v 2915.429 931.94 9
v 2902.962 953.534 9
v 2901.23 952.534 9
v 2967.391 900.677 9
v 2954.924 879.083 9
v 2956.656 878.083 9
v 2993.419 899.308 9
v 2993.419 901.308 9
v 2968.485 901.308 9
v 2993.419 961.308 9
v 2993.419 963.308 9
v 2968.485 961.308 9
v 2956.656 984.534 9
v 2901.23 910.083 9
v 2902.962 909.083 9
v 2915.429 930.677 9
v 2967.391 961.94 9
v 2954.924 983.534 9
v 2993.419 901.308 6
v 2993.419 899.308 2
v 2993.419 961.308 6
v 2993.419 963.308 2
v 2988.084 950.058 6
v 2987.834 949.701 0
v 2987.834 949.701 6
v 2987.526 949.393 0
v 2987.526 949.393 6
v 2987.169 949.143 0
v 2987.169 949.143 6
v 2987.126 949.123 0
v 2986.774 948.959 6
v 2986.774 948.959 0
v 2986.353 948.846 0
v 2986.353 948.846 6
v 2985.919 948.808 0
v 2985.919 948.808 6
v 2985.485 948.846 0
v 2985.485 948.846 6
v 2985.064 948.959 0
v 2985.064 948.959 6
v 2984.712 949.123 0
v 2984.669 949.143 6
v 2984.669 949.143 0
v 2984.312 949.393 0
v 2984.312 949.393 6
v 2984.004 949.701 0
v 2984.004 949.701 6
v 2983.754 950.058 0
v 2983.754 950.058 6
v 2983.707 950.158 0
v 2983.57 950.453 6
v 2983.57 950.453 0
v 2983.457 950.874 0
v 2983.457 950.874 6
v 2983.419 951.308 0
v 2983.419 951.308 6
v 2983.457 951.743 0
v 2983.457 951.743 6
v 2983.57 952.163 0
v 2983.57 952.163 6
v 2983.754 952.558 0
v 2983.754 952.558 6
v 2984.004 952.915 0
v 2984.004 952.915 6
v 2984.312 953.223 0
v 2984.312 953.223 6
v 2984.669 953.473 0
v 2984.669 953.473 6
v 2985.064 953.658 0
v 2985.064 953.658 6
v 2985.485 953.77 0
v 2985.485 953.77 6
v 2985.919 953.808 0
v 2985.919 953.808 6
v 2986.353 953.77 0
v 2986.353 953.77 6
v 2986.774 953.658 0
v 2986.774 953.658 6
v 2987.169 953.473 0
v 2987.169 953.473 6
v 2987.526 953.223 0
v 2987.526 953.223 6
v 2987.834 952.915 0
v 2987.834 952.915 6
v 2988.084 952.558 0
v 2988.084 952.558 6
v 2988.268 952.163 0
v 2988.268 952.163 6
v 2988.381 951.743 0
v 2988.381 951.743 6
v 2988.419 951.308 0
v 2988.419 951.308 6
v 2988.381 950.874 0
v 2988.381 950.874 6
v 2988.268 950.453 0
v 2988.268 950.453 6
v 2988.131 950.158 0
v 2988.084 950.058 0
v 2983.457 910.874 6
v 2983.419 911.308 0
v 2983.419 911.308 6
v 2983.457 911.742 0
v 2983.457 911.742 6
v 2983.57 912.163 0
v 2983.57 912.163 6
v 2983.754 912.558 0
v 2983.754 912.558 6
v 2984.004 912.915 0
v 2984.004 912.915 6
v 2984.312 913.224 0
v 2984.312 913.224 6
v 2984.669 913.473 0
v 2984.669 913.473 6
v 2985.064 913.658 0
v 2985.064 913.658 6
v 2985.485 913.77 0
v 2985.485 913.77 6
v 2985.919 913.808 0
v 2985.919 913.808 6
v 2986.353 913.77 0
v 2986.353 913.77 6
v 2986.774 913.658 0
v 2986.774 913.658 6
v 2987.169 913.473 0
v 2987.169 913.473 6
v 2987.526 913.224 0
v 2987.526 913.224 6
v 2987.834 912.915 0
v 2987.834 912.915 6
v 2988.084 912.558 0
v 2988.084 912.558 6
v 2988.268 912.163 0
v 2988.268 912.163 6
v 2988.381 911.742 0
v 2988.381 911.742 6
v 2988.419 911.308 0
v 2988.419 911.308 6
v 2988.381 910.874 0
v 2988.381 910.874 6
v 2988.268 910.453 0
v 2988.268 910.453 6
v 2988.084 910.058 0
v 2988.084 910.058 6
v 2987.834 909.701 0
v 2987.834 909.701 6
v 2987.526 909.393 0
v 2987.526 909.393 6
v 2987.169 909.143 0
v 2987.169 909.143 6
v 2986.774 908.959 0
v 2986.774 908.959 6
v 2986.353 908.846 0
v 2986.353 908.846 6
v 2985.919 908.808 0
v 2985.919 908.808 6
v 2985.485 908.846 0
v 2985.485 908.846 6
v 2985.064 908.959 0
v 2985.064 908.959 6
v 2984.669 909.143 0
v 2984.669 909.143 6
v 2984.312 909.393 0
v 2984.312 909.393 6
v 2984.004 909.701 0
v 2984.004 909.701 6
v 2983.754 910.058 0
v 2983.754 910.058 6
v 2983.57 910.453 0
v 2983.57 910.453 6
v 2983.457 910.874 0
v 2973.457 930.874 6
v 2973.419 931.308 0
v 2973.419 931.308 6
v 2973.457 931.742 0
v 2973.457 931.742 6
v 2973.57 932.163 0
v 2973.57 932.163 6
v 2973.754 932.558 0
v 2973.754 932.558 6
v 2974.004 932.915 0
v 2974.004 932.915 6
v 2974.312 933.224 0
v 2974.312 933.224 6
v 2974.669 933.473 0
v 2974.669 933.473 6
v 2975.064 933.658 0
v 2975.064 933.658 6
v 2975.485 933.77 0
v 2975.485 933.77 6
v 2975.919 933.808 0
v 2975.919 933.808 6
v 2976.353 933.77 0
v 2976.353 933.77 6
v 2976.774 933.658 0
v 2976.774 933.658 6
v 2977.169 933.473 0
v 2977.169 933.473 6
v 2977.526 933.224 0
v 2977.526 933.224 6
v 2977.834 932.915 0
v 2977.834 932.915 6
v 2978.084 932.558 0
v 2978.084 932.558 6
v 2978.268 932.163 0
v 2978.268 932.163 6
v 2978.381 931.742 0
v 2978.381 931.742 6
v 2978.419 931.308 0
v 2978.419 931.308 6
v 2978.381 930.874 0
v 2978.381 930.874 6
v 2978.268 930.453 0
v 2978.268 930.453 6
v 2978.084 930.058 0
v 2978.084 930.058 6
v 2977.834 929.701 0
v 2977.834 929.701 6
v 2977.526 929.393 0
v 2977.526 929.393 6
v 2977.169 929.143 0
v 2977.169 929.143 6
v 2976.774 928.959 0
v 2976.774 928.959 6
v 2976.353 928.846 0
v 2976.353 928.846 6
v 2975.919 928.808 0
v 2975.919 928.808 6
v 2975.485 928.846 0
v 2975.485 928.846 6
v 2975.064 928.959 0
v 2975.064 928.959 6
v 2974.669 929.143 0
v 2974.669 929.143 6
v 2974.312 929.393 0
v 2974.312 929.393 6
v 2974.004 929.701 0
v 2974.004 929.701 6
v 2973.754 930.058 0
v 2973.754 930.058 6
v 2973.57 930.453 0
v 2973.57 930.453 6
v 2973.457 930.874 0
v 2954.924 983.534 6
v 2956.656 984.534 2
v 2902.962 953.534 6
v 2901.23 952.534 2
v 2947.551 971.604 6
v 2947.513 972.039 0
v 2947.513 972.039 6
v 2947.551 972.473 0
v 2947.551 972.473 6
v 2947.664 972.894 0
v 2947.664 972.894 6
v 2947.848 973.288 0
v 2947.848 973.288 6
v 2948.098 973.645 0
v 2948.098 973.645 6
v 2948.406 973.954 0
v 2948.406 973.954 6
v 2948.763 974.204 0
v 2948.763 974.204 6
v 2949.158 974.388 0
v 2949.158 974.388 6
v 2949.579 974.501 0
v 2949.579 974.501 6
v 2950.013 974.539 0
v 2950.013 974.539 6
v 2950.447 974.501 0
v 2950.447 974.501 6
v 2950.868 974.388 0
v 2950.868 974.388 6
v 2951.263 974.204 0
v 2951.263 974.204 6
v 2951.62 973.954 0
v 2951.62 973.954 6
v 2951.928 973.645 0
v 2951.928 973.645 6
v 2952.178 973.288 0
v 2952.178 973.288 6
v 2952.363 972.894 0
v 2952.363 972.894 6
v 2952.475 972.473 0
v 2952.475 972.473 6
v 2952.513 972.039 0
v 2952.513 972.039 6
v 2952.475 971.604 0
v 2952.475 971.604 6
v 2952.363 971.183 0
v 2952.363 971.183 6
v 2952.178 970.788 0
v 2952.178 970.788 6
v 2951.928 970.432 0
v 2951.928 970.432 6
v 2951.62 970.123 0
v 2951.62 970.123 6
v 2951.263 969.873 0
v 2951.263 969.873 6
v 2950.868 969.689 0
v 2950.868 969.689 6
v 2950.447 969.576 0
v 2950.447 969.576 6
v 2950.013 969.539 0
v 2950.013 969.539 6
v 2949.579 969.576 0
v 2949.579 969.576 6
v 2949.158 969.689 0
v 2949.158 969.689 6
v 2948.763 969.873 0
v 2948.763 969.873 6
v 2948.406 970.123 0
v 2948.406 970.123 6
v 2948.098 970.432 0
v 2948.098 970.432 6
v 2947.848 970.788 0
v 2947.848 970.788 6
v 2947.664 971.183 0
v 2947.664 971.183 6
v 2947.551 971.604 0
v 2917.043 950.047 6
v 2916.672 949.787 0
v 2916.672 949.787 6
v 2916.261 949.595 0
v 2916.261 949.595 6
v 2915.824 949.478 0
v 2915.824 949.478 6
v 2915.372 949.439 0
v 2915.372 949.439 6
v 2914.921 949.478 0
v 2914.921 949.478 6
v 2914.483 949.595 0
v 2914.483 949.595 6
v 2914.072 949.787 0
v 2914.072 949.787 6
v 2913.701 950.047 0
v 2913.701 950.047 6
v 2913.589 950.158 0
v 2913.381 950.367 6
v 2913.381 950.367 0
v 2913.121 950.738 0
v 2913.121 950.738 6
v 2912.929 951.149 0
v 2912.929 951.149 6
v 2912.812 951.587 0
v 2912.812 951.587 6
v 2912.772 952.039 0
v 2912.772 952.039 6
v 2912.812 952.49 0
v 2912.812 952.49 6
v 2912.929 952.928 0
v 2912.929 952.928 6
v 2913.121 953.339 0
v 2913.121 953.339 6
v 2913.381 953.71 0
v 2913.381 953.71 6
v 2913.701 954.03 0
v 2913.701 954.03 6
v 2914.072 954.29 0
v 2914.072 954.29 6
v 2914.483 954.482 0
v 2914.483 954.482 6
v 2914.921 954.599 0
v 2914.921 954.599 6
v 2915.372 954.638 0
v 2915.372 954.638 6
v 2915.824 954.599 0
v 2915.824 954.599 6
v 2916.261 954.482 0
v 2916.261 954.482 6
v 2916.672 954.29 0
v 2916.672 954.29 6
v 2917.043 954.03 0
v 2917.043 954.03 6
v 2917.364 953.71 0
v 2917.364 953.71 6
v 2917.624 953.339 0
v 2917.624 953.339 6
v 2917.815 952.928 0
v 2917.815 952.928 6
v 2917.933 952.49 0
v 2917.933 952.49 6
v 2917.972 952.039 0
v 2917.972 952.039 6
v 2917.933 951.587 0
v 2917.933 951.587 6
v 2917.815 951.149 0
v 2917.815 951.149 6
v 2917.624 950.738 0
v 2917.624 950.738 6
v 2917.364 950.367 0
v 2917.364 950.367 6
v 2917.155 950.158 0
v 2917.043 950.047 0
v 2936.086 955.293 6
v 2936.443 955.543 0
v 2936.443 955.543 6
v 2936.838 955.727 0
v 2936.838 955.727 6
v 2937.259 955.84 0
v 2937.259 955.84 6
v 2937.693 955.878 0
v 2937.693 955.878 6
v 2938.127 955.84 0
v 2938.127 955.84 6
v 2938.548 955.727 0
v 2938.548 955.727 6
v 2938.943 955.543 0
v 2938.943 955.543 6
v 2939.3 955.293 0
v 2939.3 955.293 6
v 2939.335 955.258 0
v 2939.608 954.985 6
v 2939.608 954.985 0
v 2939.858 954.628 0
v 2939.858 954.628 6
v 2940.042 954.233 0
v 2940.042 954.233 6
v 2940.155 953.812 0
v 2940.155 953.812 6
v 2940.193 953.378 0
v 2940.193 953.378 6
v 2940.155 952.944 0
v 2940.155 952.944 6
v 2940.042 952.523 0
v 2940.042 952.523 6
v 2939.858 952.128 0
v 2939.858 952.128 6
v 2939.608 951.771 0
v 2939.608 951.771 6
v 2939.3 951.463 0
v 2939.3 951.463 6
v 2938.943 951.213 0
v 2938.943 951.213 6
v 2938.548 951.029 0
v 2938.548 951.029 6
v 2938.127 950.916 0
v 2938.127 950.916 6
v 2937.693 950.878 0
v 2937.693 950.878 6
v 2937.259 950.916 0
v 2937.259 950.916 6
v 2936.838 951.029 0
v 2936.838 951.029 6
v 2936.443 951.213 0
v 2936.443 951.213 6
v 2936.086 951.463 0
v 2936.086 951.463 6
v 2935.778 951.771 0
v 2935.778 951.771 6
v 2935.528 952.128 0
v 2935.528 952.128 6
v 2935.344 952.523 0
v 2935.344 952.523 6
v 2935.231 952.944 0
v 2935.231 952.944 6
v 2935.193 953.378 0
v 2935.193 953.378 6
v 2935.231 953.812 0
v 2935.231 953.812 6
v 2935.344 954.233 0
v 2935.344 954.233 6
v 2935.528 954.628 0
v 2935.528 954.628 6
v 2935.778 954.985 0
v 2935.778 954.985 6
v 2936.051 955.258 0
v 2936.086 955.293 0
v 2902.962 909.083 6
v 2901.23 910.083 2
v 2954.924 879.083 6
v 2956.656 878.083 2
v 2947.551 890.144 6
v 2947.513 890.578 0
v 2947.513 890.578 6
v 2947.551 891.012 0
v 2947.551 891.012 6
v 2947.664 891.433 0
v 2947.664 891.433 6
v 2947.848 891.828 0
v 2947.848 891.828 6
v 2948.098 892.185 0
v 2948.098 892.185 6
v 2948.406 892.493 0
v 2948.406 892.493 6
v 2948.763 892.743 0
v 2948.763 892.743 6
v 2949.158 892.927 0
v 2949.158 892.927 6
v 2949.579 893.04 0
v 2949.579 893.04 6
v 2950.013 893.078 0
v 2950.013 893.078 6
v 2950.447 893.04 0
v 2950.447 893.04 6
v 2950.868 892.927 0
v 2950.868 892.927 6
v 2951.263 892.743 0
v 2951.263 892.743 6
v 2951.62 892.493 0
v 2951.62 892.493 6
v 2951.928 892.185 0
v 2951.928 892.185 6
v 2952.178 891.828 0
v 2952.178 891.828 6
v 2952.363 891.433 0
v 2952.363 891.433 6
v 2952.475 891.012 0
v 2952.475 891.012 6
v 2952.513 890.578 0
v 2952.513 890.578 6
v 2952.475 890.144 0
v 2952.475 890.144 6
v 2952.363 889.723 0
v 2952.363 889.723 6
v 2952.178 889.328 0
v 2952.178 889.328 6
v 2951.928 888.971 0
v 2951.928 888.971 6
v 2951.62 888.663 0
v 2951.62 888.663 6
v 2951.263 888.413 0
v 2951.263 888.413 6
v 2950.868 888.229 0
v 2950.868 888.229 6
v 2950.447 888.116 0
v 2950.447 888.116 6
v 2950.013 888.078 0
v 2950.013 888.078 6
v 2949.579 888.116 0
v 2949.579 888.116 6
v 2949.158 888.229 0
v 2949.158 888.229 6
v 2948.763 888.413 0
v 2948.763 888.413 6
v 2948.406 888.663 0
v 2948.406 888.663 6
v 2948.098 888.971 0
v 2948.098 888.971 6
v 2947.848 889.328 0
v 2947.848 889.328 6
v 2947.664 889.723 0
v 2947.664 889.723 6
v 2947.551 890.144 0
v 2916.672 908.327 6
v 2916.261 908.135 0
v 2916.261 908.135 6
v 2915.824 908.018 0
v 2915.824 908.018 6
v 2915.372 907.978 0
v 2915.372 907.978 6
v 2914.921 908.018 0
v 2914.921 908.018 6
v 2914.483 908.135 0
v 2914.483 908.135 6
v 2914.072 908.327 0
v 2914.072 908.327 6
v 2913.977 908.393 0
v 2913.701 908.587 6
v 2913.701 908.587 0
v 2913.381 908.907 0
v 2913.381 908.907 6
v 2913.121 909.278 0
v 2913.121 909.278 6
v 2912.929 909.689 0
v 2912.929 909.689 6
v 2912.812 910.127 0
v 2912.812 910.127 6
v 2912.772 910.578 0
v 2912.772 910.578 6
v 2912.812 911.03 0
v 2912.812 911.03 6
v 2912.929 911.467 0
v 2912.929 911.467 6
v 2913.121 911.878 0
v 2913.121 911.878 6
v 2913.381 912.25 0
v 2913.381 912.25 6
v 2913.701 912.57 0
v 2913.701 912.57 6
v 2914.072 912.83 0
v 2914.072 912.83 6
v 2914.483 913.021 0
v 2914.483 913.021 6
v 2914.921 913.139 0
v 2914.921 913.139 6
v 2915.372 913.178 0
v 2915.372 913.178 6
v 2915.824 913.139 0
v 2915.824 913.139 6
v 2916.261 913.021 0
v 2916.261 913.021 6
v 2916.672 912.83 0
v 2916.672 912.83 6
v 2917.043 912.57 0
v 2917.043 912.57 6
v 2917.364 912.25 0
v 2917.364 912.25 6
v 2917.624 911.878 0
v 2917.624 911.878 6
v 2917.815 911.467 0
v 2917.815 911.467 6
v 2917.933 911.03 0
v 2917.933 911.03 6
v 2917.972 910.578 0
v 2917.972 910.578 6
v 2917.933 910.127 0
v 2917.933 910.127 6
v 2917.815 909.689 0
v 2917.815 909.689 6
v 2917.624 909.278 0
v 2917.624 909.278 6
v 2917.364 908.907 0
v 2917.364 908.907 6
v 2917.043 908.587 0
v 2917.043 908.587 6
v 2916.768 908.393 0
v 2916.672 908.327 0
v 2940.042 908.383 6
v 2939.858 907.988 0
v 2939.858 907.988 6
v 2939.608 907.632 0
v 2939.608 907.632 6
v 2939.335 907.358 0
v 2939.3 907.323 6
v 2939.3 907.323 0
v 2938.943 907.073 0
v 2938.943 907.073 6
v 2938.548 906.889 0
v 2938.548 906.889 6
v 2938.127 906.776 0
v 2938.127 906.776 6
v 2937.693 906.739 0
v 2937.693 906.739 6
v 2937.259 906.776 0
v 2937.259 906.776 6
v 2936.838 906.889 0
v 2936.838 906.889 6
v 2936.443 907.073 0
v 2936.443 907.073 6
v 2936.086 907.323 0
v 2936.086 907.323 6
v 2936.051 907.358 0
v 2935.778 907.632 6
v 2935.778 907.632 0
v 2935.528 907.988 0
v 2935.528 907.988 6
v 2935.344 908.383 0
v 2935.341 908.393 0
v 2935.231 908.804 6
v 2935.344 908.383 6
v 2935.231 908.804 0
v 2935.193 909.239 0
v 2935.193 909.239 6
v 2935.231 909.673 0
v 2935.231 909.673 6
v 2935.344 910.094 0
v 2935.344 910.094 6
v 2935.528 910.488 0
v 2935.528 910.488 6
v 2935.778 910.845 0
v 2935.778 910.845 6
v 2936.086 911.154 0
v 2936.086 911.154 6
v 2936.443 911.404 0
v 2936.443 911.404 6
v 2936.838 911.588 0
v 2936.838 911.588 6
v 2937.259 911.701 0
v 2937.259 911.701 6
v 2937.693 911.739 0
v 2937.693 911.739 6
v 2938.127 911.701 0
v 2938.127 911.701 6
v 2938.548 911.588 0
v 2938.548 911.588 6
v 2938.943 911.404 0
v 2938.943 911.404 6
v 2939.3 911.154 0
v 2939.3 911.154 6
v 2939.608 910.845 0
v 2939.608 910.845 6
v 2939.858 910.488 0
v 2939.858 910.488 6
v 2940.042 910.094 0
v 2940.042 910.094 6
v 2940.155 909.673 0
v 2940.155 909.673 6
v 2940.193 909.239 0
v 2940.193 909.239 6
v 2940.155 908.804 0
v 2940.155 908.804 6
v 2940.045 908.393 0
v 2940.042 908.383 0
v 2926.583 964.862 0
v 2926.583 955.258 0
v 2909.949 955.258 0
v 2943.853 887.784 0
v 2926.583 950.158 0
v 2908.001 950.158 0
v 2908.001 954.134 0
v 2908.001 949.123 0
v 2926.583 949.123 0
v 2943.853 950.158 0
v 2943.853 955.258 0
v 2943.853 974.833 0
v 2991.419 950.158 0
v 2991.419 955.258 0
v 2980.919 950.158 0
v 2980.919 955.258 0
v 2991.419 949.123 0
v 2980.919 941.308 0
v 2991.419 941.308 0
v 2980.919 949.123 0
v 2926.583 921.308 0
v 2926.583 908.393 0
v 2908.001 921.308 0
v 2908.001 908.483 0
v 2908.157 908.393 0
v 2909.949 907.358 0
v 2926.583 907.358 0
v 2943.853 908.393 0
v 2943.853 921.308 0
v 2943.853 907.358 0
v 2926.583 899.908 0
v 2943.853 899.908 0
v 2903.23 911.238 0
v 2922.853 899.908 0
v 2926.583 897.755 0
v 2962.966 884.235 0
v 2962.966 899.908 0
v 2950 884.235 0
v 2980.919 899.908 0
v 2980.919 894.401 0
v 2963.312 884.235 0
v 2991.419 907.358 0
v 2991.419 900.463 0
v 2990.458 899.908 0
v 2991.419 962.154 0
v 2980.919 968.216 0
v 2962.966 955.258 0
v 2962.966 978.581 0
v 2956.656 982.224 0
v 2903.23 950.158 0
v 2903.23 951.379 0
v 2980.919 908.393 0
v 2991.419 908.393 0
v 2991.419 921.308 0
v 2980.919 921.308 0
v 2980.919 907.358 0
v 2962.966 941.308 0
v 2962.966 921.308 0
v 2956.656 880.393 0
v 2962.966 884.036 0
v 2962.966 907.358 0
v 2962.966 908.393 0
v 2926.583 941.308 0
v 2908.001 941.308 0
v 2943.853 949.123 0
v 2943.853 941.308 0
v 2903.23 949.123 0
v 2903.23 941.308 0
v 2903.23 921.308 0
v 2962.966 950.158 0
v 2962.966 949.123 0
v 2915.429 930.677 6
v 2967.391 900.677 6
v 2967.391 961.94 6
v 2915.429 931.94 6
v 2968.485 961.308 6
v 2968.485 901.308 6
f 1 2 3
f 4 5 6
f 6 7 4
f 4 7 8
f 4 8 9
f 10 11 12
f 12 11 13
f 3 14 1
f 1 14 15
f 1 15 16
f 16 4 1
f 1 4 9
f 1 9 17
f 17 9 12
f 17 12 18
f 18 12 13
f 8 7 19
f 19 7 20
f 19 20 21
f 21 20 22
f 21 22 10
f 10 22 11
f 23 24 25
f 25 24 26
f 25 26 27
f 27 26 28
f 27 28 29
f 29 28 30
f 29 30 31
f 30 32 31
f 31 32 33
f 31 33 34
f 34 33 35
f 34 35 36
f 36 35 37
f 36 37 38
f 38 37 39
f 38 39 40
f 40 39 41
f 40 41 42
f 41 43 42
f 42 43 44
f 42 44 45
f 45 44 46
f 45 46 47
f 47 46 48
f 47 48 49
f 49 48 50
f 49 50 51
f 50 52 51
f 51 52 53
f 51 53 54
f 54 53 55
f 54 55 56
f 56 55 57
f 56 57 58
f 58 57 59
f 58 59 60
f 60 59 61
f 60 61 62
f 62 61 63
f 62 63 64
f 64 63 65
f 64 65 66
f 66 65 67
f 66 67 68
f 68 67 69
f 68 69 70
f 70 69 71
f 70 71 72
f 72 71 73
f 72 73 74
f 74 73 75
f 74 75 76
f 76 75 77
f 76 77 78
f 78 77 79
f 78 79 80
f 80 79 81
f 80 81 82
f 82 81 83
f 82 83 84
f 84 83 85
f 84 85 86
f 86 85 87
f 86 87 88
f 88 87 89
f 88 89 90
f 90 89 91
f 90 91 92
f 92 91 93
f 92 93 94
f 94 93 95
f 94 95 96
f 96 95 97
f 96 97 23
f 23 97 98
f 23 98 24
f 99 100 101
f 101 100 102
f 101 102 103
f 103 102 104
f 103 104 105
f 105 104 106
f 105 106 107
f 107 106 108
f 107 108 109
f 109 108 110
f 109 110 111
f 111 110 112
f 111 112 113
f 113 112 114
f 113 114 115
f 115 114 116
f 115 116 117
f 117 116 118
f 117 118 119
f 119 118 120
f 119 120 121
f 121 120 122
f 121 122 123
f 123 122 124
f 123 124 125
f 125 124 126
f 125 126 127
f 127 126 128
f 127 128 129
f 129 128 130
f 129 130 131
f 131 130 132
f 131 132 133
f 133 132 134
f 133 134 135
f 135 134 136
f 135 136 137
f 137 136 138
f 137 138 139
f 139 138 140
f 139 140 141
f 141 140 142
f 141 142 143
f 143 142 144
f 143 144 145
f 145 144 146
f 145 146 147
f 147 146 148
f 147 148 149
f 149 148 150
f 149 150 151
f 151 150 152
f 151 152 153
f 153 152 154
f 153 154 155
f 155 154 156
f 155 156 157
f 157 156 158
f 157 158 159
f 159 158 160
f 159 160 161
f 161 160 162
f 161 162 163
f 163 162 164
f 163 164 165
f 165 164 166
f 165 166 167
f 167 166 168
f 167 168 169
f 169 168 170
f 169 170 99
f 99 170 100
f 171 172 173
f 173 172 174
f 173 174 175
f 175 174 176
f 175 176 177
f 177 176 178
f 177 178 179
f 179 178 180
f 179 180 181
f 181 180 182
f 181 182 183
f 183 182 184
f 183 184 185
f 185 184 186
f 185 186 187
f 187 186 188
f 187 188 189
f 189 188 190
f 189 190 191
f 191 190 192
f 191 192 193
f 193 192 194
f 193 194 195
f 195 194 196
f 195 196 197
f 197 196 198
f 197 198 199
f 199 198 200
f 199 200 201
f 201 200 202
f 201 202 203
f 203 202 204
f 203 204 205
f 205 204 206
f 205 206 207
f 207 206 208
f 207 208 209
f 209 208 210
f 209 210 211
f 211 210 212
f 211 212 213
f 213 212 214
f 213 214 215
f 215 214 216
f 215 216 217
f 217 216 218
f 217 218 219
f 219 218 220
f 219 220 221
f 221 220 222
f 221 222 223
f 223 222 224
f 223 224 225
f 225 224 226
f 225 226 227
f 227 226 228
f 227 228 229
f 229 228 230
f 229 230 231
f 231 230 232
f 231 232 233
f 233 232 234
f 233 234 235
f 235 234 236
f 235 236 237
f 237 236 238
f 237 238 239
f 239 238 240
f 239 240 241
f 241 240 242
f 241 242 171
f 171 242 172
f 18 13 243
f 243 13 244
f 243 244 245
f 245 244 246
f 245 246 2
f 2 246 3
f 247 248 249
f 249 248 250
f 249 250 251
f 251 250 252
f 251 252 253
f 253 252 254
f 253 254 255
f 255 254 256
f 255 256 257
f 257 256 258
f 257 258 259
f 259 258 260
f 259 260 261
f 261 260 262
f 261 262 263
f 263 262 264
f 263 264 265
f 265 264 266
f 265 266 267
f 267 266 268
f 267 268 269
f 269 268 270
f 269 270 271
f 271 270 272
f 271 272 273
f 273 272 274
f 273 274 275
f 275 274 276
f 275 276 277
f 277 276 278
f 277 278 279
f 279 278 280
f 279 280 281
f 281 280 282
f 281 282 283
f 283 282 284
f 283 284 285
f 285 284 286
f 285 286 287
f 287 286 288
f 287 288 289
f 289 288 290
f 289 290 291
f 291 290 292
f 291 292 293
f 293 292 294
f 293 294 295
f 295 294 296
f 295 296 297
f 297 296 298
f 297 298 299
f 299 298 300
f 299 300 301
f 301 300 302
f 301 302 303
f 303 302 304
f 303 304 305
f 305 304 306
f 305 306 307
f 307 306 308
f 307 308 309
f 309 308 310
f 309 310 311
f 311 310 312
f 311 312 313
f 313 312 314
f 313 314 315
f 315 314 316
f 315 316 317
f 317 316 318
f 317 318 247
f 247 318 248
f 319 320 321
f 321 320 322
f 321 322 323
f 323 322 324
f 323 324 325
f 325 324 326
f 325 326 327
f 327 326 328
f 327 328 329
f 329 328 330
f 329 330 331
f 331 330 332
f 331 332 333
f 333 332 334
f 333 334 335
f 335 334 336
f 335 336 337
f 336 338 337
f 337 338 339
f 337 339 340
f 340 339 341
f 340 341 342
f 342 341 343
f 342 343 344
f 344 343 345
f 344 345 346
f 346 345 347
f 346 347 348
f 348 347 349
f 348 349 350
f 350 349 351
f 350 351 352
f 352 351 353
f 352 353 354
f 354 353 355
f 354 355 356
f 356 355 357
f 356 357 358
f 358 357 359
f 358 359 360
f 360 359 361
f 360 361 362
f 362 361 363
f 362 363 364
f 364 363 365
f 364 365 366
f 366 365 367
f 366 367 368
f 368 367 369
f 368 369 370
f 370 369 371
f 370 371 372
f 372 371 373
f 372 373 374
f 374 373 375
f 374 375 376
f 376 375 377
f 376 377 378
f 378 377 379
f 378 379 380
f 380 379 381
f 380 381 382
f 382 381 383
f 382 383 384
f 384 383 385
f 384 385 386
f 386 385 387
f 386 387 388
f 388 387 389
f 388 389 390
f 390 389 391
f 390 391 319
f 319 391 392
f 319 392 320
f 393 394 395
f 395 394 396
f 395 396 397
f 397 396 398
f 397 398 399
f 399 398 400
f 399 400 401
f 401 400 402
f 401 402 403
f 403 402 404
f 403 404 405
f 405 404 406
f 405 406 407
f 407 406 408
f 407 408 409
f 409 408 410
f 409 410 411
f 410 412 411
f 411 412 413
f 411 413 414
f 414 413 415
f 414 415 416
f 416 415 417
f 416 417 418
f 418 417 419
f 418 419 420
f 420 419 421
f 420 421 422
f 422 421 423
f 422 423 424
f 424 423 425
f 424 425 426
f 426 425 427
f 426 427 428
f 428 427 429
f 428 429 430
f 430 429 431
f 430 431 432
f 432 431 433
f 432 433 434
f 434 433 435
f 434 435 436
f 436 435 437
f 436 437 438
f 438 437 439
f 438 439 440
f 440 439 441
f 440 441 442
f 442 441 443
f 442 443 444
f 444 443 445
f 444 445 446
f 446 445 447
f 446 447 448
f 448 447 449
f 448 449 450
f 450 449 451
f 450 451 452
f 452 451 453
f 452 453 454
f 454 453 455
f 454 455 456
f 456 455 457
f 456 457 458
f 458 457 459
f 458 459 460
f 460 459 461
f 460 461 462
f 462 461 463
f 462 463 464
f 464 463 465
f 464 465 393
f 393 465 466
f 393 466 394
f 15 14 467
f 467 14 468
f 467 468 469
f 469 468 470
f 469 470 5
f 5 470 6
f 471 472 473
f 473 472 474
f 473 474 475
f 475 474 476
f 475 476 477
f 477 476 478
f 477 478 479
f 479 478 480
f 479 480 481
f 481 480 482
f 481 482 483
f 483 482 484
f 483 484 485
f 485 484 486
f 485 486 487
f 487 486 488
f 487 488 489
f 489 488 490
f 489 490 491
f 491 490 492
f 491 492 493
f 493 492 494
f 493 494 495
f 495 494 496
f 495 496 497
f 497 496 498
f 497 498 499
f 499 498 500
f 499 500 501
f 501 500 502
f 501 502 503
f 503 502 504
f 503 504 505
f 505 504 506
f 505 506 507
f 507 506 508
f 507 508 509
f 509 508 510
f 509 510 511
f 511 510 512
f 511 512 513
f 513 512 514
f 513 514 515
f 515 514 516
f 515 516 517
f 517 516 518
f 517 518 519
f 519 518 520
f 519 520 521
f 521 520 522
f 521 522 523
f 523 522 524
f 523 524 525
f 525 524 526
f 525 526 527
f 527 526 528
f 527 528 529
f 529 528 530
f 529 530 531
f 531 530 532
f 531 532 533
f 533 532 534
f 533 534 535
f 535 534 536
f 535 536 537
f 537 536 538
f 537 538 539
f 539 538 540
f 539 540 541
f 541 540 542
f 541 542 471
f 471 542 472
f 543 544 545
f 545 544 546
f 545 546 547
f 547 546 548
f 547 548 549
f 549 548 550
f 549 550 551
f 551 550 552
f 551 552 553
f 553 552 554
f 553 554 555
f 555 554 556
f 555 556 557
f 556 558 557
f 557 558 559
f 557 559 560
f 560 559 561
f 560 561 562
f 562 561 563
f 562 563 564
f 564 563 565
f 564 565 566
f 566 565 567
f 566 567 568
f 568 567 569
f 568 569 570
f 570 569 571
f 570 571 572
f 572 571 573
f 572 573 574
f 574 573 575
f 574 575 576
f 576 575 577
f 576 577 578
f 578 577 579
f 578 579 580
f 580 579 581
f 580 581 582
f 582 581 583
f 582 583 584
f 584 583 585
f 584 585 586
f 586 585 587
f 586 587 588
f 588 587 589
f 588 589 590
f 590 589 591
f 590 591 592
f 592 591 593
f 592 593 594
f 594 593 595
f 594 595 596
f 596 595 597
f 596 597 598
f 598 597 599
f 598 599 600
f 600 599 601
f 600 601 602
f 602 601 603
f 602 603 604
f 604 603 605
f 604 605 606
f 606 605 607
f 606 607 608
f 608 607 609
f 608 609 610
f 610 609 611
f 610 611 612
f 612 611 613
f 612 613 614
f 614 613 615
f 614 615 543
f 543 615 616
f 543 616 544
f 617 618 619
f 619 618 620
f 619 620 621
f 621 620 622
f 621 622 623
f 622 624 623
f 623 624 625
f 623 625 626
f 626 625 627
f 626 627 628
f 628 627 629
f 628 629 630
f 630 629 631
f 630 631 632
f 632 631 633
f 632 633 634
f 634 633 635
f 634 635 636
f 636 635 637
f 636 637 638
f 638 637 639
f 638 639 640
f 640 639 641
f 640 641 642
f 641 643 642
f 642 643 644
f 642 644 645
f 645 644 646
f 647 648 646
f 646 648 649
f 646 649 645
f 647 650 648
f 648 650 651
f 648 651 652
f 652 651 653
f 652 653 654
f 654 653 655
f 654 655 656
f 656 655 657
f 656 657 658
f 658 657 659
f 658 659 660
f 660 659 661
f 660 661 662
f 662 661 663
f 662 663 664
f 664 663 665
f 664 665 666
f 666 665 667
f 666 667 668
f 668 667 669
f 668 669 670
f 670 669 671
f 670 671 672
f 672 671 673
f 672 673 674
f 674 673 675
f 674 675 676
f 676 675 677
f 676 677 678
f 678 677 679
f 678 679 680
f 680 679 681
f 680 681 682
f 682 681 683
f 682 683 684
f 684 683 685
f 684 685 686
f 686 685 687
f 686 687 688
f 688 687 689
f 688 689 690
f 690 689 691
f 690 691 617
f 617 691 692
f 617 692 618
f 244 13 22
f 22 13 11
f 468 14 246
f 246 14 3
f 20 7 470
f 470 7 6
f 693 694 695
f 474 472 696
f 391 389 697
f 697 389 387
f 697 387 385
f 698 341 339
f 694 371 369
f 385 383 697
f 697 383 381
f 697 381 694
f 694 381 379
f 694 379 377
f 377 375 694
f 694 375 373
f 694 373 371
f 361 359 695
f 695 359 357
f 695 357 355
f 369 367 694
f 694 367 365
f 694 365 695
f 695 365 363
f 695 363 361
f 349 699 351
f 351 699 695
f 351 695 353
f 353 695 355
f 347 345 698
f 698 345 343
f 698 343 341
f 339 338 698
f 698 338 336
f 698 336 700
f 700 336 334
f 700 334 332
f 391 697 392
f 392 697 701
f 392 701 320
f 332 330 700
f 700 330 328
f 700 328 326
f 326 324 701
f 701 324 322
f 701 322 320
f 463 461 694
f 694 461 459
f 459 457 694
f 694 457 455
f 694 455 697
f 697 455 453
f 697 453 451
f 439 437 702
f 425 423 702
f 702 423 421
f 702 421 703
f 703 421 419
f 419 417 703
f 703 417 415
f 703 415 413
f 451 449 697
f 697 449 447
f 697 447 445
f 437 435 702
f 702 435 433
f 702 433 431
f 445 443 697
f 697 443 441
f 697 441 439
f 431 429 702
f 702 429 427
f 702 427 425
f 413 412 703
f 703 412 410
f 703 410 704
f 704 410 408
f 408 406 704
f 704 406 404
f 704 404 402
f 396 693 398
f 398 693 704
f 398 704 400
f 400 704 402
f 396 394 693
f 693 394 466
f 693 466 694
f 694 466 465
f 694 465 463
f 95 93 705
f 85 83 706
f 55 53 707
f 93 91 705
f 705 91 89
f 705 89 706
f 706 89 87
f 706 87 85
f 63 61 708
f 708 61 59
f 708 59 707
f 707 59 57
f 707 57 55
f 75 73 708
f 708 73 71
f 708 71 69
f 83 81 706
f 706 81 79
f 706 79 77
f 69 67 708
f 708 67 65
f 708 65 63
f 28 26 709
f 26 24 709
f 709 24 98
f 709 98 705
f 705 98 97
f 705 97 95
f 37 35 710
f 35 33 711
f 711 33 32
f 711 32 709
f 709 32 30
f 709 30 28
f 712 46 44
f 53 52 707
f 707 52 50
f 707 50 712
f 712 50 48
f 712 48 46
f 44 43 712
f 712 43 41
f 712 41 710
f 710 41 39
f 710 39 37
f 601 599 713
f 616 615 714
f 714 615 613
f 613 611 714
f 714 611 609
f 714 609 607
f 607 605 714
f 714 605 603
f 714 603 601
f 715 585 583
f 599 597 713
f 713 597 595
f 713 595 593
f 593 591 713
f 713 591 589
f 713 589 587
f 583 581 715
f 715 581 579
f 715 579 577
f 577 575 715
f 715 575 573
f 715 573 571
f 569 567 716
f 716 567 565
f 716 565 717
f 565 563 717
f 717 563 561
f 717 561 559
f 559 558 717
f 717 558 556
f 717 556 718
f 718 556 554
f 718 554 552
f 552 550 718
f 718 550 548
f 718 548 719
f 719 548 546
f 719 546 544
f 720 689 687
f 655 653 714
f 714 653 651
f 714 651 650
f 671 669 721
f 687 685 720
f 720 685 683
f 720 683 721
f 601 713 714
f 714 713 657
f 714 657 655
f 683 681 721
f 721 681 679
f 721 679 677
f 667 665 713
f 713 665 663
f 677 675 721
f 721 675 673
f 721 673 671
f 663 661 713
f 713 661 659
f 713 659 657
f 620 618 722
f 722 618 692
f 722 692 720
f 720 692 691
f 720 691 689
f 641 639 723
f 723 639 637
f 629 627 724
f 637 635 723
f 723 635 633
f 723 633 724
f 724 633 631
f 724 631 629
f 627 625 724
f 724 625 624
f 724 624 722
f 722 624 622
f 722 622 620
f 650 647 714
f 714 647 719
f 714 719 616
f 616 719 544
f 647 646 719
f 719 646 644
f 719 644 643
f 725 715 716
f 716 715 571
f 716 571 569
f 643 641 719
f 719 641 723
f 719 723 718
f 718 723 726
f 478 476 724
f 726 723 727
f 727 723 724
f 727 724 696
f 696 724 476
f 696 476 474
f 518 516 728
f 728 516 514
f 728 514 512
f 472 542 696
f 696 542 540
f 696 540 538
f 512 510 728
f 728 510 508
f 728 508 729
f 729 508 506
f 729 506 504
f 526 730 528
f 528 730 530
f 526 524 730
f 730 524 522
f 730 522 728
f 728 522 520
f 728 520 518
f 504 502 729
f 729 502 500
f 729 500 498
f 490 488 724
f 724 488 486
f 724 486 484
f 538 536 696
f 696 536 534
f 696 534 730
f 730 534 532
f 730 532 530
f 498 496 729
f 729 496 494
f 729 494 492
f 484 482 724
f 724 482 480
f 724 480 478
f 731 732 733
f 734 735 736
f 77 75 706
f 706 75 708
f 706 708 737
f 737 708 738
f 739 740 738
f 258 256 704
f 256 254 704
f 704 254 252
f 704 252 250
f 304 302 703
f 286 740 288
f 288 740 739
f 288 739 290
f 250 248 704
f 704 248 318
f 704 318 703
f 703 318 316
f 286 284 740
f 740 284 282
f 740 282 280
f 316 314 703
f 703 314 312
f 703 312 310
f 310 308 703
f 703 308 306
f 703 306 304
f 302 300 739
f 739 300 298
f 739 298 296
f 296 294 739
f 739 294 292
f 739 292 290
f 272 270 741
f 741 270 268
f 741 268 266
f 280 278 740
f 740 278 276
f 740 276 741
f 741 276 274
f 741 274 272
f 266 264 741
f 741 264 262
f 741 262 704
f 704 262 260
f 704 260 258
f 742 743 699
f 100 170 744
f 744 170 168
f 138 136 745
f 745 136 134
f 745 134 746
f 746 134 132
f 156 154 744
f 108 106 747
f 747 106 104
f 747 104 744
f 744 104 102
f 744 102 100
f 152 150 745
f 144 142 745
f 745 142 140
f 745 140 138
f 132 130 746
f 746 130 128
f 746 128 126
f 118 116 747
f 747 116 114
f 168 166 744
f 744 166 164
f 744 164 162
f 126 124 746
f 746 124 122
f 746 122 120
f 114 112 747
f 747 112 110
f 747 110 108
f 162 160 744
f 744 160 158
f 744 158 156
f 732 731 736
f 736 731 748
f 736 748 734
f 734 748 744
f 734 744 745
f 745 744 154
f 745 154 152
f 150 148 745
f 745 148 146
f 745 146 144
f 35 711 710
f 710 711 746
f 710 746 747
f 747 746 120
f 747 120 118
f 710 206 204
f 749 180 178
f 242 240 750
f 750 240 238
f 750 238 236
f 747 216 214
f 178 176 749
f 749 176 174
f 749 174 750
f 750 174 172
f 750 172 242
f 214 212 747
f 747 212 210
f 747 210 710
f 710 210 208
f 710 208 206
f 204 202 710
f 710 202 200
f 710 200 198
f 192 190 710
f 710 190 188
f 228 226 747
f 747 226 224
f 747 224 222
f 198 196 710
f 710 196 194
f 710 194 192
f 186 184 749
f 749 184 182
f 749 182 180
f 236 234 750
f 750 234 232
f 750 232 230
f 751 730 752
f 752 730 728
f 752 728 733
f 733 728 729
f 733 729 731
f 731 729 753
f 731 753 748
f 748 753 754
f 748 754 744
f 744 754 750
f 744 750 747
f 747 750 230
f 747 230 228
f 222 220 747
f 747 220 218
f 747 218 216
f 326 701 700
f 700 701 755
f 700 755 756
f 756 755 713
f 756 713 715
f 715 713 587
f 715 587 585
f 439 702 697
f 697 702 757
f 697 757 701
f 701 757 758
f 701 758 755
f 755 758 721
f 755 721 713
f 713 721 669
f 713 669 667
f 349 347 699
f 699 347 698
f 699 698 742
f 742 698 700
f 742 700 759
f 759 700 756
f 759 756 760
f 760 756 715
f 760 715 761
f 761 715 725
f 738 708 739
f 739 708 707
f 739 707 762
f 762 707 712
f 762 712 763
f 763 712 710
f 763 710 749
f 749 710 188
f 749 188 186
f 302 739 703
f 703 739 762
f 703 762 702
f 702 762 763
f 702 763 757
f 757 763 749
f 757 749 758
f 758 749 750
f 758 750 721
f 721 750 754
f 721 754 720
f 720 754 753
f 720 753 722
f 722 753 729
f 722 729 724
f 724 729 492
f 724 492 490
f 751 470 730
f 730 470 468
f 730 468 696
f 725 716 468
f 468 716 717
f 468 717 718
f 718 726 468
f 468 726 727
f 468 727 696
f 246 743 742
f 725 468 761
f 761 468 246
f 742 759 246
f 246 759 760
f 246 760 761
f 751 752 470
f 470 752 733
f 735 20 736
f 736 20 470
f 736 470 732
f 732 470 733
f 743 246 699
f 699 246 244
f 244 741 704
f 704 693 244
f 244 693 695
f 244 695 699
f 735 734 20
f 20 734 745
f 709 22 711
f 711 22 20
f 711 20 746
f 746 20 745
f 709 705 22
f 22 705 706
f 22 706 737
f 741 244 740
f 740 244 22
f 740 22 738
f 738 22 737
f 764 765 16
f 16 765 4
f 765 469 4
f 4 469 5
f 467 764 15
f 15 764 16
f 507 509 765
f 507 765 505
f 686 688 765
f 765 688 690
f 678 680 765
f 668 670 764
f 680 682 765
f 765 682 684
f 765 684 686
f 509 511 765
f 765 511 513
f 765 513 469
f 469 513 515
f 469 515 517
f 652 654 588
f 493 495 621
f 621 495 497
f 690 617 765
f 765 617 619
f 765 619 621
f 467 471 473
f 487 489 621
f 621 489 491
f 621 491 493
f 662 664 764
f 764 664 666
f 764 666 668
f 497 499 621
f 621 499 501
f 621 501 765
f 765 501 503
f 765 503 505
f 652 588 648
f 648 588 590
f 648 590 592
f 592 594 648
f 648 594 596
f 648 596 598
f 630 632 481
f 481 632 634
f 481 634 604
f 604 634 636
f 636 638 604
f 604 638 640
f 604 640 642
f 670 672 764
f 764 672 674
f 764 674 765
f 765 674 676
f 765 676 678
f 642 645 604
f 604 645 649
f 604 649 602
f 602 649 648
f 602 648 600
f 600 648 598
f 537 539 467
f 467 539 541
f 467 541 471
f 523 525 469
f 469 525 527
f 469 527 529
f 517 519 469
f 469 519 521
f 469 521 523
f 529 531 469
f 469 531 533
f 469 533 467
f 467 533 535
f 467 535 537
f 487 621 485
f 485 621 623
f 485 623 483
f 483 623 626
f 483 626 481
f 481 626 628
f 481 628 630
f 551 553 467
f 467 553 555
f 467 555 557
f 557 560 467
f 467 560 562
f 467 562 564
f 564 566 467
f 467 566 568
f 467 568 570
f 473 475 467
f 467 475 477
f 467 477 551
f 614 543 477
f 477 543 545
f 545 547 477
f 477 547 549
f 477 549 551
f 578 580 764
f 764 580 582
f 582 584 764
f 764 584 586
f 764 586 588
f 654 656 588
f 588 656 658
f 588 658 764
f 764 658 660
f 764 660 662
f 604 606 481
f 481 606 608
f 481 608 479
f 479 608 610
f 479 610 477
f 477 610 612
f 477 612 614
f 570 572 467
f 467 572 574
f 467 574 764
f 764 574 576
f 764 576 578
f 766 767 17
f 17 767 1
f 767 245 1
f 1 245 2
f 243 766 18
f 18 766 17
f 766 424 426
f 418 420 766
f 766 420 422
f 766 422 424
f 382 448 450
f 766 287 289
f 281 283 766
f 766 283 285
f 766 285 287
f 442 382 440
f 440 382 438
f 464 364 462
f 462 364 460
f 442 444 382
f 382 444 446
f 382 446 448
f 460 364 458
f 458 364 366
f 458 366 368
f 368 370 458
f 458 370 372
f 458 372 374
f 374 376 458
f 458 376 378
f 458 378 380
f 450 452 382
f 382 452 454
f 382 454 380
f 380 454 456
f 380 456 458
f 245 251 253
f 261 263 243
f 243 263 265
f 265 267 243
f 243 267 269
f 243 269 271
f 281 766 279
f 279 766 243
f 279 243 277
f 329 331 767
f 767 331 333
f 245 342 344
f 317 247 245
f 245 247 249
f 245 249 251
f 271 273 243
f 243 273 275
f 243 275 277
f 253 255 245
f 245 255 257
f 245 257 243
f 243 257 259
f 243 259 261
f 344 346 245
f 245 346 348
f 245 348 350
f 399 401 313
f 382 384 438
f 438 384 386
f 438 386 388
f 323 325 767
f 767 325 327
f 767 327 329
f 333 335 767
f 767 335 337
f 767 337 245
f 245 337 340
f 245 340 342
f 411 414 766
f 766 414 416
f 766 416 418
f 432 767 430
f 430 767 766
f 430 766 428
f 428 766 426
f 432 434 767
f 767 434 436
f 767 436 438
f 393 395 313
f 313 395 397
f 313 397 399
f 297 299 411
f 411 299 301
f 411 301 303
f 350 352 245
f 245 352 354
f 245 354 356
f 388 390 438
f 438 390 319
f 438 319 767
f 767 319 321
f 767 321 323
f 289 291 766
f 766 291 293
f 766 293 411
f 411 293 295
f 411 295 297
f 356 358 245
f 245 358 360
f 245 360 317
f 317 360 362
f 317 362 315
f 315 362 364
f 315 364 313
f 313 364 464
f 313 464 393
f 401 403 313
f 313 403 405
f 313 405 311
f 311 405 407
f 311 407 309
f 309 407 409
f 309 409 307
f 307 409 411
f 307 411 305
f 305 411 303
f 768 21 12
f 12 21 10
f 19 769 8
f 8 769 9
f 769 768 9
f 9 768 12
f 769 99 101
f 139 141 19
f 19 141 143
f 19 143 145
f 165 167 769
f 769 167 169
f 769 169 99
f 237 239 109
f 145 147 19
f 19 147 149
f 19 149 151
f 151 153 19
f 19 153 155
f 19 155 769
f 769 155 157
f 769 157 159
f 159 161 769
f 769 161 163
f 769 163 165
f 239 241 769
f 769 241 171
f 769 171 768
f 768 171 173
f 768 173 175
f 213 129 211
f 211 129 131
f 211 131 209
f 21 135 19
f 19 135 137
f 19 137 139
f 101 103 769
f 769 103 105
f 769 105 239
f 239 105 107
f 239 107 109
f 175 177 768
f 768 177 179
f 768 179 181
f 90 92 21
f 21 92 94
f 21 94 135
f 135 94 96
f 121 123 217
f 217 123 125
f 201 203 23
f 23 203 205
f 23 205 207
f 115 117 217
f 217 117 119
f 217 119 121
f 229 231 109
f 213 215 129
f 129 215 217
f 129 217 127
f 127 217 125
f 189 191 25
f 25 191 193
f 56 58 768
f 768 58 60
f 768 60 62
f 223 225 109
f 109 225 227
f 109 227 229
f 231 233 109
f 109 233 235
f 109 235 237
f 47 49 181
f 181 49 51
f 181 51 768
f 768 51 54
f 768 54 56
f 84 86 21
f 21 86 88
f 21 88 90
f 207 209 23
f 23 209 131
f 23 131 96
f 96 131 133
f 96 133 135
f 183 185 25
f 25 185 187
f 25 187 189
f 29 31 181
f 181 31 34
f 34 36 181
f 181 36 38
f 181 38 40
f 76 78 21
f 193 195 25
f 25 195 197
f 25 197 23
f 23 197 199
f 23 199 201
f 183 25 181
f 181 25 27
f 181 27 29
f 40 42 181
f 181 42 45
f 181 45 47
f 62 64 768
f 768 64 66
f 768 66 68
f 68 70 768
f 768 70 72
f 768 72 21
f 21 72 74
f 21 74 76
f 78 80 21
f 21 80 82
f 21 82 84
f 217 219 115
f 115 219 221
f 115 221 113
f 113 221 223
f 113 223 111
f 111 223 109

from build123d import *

# Parameters (mm, degrees)
SKETCH1_R           = 2.6
SKETCH1_R_2         = 2.5
BOSS_EXTRUDE2_DEPTH = 9
CHAMFER1_SIZE       = 2
SKETCH3_R           = 2.6
SKETCH3_R_2         = 2.5
SKETCH3_W           = 24.934090133
SKETCH3_H           = 60
CUT_EXTRUDE1_DEPTH  = 3


with BuildPart() as part:
    # Sketch1 → Boss-Extrude2 (new body)
    with BuildSketch(Plane.XY):
        with BuildLine():
            ThreePointArc((2912.593825938, 925.76581843), (2909.393825938, 931.308381015), (2912.593825938, 936.850943599))
            Line((2912.593825938, 936.850943599), (2902.962034909, 953.533695028))
            Line((2902.962034909, 953.533695028), (2901.229984102, 952.533695028))
            Line((2901.229984102, 952.533695028), (2901.229984102, 910.083067001))
            Line((2901.229984102, 910.083067001), (2902.962034909, 909.083067001))
            Line((2902.962034909, 909.083067001), (2912.593825938, 925.76581843))
        make_face()
        with BuildLine():
            Line((2902.962034909, 953.533695028), (2912.593825938, 936.850943599))
            ThreePointArc((2912.593825938, 936.850943599), (2909.393825938, 931.308381015), (2912.593825938, 925.76581843))
            Line((2912.593825938, 925.76581843), (2902.962034909, 909.083067001))
            Line((2902.962034909, 909.083067001), (2954.923559136, 879.083067001))
            Line((2954.923559136, 879.083067001), (2964.555350165, 895.76581843))
            ThreePointArc((2964.555350165, 895.76581843), (2970.955350165, 895.76581843), (2974.155350165, 901.308381015))
            Line((2974.155350165, 901.308381015), (2993.418932222, 901.308381015))
            Line((2993.418932222, 901.308381015), (2993.418932222, 961.308381015))
            Line((2993.418932222, 961.308381015), (2974.155350165, 961.308381015))
            ThreePointArc((2974.155350165, 961.308381015), (2970.955350165, 966.850943599), (2964.555350165, 966.850943599))
            Line((2964.555350165, 966.850943599), (2954.923559136, 983.533695028))
            Line((2954.923559136, 983.533695028), (2902.962034909, 953.533695028))
        make_face()
        with Locations((2915.372288947, 910.57825753)):
            Circle(SKETCH1_R, mode=Mode.SUBTRACT)
        with Locations((2937.692797023, 909.238511568)):
            Circle(SKETCH1_R_2, mode=Mode.SUBTRACT)
        with Locations((2950.013305099, 890.57825753)):
            Circle(SKETCH1_R_2, mode=Mode.SUBTRACT)
        with Locations((2985.918932222, 911.308381015)):
            Circle(SKETCH1_R_2, mode=Mode.SUBTRACT)
        with Locations((2915.372288947, 952.0385045)):
            Circle(SKETCH1_R, mode=Mode.SUBTRACT)
        with BuildLine():
            Line((2920.935519946, 935.119284152), (2961.884164232, 958.760994954))
            ThreePointArc((2961.884164232, 958.760994954), (2964.555350165, 955.76581843), (2968.484842089, 954.950091816))
            Line((2968.484842089, 954.950091816), (2968.484842089, 907.666670213))
            ThreePointArc((2968.484842089, 907.666670213), (2964.555350165, 906.850943599), (2961.884164232, 903.855767076))
            Line((2961.884164232, 903.855767076), (2920.935519946, 927.497477877))
            ThreePointArc((2920.935519946, 927.497477877), (2922.193825938, 931.308381015), (2920.935519946, 935.119284152))
        make_face(mode=Mode.SUBTRACT)
        with Locations((2937.692797023, 953.378250462)):
            Circle(SKETCH1_R_2, mode=Mode.SUBTRACT)
        with Locations((2975.918932222, 931.308381015)):
            Circle(SKETCH1_R_2, mode=Mode.SUBTRACT)
        with Locations((2985.918932222, 951.308381015)):
            Circle(SKETCH1_R_2, mode=Mode.SUBTRACT)
        with Locations((2950.013305099, 972.0385045)):
            Circle(SKETCH1_R_2, mode=Mode.SUBTRACT)
        with BuildLine():
            Line((2956.655609944, 984.533695028), (2954.923559136, 983.533695028))
            Line((2954.923559136, 983.533695028), (2964.555350165, 966.850943599))
            ThreePointArc((2964.555350165, 966.850943599), (2970.955350165, 966.850943599), (2974.155350165, 961.308381015))
            Line((2974.155350165, 961.308381015), (2993.418932222, 961.308381015))
            Line((2993.418932222, 961.308381015), (2993.418932222, 963.308381015))
            Line((2993.418932222, 963.308381015), (2956.655609944, 984.533695028))
        make_face()
        with BuildLine():
            ThreePointArc((2961.884164232, 958.760994954), (2964.555350165, 955.76581843), (2968.484842089, 954.950091816))
            Line((2968.484842089, 954.950091816), (2968.484842089, 907.666670213))
            ThreePointArc((2968.484842089, 907.666670213), (2964.555350165, 906.850943599), (2961.884164232, 903.855767076))
            Line((2961.884164232, 903.855767076), (2920.935519946, 927.497477877))
            ThreePointArc((2920.935519946, 927.497477877), (2922.193825938, 931.308381015), (2920.935519946, 935.119284152))
            Line((2920.935519946, 935.119284152), (2961.884164232, 958.760994954))
        make_face()
        with BuildLine():
            Line((2964.555350165, 895.76581843), (2954.923559136, 879.083067001))
            Line((2954.923559136, 879.083067001), (2956.655609944, 878.083067001))
            Line((2956.655609944, 878.083067001), (2993.418932222, 899.308381015))
            Line((2993.418932222, 899.308381015), (2993.418932222, 901.308381015))
            Line((2993.418932222, 901.308381015), (2974.155350165, 901.308381015))
            ThreePointArc((2974.155350165, 901.308381015), (2970.955350165, 895.76581843), (2964.555350165, 895.76581843))
        make_face()
    extrude(amount=BOSS_EXTRUDE2_DEPTH)

    # Chamfer1
    chamfer1_edges = [part.edges().sort_by_distance(p)[0] for p in [
        (2975.037271083, 888.695724008, 0),
        (2928.942797023, 894.083067001, 0),
        (2901.229984102, 931.308381015, 0),
        (2928.942797023, 968.533695028, 0),
        (2975.037271083, 973.921038021, 0),
        (2993.418932222, 931.308381015, 0),
    ]]
    chamfer(chamfer1_edges, length=CHAMFER1_SIZE)

    # Sketch3 → Cut-Extrude1 (cut)
    with BuildSketch(Plane.XY.offset(9)):
        Polygon((2902.962034909, 909.083067001), (2954.923559136, 879.083067001), (2967.390604203, 900.676622476), (2915.429079976, 930.676622476), align=None)
        with Locations((2915.372288947, 910.57825753)):
            Circle(SKETCH3_R, mode=Mode.SUBTRACT)
        with Locations((2937.692797023, 909.238511568)):
            Circle(SKETCH3_R_2, mode=Mode.SUBTRACT)
        with Locations((2950.013305099, 890.57825753)):
            Circle(SKETCH3_R_2, mode=Mode.SUBTRACT)
        Polygon((2967.390604203, 961.940139553), (2954.923559136, 983.533695028), (2902.962034909, 953.533695028), (2915.429079976, 931.940139553), align=None)
        with Locations((2915.372288947, 952.0385045)):
            Circle(SKETCH3_R, mode=Mode.SUBTRACT)
        with Locations((2937.692797023, 953.378250462)):
            Circle(SKETCH3_R_2, mode=Mode.SUBTRACT)
        with Locations((2950.013305099, 972.0385045)):
            Circle(SKETCH3_R_2, mode=Mode.SUBTRACT)
        with Locations((2980.951887156, 931.308381015)):
            Rectangle(SKETCH3_W, SKETCH3_H)
        with Locations((2985.918932222, 911.308381015)):
            Circle(SKETCH3_R_2, mode=Mode.SUBTRACT)
        with Locations((2975.918932222, 931.308381015)):
            Circle(SKETCH3_R_2, mode=Mode.SUBTRACT)
        with Locations((2985.918932222, 951.308381015)):
            Circle(SKETCH3_R_2, mode=Mode.SUBTRACT)
    extrude(amount=-CUT_EXTRUDE1_DEPTH, mode=Mode.SUBTRACT)


solid = part.part
